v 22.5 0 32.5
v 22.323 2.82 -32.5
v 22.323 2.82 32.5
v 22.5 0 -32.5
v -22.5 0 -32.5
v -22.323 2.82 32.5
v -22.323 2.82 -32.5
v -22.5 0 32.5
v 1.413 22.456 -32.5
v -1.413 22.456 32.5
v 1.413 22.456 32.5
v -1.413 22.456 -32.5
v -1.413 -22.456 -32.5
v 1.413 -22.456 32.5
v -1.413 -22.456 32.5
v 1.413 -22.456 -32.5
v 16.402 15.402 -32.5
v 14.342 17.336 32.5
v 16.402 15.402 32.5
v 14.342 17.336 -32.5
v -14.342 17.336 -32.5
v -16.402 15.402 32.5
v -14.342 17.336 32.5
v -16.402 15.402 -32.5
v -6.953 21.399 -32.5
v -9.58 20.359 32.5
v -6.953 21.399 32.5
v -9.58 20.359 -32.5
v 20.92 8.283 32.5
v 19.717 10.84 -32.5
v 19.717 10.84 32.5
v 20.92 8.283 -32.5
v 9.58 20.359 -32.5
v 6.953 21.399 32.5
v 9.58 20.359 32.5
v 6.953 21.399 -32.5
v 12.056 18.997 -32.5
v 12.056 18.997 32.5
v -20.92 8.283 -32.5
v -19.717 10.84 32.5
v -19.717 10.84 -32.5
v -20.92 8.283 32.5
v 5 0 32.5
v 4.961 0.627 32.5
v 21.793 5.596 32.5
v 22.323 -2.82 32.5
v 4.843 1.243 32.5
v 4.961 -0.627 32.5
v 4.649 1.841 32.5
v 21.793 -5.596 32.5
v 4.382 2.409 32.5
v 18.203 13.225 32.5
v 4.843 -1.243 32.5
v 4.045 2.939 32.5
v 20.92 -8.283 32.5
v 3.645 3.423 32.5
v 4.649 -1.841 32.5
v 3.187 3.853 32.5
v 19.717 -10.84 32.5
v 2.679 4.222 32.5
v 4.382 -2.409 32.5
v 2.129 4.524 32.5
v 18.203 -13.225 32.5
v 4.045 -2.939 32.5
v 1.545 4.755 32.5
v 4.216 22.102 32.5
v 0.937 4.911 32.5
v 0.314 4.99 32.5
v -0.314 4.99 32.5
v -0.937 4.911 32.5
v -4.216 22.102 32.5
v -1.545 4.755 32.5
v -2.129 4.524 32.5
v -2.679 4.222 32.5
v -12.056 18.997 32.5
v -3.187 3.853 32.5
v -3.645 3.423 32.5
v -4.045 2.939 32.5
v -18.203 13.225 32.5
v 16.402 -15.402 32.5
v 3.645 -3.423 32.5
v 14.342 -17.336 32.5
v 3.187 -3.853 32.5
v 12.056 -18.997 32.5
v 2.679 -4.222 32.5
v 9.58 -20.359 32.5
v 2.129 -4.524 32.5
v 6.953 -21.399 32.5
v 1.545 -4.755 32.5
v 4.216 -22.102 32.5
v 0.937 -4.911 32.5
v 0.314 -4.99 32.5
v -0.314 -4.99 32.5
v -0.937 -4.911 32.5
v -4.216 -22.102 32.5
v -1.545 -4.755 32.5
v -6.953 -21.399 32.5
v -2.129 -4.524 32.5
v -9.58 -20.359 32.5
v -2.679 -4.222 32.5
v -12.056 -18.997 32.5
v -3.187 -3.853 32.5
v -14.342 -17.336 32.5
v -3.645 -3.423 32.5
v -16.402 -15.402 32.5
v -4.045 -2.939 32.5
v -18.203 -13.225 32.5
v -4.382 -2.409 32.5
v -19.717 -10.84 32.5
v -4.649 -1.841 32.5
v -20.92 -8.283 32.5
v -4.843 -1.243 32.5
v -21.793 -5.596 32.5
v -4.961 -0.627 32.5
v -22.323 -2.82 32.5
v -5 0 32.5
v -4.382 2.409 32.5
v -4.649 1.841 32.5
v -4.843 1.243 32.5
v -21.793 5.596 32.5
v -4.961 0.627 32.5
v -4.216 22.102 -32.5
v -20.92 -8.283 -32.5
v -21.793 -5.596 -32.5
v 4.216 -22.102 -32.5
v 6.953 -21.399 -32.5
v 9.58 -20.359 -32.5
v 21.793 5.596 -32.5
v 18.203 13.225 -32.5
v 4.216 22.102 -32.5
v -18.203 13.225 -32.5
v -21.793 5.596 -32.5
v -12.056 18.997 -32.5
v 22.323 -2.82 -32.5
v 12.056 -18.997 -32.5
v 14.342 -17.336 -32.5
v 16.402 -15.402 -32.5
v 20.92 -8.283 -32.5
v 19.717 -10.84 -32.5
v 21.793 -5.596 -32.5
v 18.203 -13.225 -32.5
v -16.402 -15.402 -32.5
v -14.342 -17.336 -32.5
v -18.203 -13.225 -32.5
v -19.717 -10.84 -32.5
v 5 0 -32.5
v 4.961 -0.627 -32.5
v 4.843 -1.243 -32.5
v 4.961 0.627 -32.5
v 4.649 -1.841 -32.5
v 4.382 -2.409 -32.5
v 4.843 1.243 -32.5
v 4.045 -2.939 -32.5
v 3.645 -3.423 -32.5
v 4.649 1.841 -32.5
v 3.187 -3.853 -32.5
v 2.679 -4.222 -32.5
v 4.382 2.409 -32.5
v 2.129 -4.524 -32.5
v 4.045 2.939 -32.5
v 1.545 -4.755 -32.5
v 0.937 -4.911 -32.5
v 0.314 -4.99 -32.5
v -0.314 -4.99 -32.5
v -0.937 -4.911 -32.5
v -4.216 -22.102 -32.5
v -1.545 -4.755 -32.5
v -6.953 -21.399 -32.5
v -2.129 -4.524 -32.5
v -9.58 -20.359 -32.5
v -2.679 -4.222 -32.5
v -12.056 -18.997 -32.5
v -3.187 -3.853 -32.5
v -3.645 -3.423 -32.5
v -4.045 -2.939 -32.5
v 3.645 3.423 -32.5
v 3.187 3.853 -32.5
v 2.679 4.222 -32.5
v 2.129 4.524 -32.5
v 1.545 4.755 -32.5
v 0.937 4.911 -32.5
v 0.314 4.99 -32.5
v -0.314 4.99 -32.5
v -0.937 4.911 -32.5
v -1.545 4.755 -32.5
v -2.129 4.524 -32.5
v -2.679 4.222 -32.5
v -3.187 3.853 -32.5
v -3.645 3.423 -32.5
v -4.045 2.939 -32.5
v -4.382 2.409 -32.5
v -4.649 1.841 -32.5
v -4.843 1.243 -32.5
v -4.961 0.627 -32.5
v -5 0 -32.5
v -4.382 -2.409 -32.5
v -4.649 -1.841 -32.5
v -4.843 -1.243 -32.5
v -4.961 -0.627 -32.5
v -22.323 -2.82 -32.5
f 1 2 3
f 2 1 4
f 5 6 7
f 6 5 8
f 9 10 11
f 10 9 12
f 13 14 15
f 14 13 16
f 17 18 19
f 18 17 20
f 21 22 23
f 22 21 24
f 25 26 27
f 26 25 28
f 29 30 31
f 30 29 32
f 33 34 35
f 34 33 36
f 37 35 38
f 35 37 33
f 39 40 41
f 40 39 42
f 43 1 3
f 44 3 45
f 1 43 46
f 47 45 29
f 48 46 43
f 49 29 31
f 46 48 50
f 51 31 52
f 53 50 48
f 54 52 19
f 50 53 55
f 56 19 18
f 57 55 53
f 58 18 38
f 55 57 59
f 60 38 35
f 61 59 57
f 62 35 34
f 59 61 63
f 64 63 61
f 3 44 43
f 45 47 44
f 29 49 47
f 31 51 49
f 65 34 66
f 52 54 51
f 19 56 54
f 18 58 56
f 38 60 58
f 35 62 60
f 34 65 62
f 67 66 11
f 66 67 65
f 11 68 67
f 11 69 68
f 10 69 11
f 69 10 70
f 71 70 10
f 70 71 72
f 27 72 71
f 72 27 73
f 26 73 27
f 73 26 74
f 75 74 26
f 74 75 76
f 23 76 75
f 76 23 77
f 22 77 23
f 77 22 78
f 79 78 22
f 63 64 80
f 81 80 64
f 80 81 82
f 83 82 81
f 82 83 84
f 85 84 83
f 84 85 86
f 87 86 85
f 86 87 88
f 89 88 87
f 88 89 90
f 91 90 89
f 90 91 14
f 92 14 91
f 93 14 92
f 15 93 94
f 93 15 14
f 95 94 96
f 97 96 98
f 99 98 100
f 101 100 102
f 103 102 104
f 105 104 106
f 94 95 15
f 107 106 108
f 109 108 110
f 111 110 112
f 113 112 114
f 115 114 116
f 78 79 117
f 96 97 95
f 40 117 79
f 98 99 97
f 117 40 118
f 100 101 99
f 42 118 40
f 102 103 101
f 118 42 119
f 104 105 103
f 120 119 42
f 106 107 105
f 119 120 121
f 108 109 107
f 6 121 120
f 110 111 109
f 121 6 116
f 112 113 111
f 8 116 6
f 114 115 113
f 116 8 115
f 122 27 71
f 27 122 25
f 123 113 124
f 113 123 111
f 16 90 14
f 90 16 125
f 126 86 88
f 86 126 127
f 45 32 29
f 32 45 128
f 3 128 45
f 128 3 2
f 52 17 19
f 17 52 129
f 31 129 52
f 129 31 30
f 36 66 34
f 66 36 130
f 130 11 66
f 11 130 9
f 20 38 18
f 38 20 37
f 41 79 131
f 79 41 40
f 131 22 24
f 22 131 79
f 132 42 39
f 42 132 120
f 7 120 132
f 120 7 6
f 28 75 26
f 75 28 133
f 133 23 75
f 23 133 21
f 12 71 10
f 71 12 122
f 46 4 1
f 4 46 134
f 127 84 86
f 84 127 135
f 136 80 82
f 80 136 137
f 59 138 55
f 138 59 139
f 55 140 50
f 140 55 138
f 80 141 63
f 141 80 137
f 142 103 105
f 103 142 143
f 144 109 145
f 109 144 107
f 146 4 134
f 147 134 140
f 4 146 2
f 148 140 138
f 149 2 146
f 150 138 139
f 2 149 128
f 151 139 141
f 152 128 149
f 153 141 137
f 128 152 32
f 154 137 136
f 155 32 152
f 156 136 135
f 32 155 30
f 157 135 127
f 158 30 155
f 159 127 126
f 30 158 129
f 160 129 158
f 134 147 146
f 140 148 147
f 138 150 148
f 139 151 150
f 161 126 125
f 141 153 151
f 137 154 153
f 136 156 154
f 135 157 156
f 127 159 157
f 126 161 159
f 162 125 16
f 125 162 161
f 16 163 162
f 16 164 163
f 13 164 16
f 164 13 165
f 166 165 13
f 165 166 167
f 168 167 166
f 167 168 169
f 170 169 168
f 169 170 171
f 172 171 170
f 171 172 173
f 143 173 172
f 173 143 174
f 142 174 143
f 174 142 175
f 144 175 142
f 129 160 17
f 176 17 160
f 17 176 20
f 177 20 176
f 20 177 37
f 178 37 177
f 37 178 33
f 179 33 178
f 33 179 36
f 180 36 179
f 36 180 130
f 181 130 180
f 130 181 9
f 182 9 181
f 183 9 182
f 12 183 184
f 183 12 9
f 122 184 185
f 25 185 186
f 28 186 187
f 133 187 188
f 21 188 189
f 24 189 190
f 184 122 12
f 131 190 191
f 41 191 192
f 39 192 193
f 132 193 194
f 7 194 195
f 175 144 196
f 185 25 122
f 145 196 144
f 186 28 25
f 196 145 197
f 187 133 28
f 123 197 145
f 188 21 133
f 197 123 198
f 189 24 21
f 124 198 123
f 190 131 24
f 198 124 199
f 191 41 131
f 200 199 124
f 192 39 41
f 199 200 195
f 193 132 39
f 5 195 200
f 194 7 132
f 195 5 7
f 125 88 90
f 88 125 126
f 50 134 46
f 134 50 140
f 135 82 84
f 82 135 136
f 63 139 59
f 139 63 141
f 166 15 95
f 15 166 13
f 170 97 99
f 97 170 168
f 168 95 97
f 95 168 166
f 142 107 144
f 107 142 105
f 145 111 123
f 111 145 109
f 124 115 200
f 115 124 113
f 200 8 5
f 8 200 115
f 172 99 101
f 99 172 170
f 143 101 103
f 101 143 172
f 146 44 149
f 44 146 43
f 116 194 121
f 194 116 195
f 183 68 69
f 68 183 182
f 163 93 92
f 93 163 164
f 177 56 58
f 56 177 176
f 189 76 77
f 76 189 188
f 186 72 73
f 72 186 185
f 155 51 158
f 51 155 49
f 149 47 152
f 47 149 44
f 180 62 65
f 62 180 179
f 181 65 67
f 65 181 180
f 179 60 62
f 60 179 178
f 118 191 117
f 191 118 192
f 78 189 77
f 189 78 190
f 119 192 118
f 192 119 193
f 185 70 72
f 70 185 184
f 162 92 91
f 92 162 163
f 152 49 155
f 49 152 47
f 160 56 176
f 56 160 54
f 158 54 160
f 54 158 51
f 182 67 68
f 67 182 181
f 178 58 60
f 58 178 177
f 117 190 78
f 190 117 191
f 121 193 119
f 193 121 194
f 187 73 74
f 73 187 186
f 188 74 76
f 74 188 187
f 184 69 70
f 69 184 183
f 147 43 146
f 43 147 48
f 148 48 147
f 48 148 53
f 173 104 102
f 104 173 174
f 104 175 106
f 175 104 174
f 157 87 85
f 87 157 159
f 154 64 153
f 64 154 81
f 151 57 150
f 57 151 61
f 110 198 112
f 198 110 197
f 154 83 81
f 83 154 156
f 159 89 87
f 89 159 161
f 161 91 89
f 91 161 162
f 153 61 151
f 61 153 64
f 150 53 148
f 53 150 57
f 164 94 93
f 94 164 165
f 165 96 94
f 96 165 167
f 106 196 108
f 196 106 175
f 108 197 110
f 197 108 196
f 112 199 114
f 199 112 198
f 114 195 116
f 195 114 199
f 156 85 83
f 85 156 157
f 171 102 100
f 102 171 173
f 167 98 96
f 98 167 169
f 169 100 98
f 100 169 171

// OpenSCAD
$fn = 50;


difference() {
	union() {
		translate(v = [0, 0, -32.5000000000]) {
			cylinder(h = 65, r = 22.5000000000);
		}
	}
	union() {
		translate(v = [0, 0, -100.0000000000]) {
			cylinder(h = 200, r = 5);
		}
	}
}
